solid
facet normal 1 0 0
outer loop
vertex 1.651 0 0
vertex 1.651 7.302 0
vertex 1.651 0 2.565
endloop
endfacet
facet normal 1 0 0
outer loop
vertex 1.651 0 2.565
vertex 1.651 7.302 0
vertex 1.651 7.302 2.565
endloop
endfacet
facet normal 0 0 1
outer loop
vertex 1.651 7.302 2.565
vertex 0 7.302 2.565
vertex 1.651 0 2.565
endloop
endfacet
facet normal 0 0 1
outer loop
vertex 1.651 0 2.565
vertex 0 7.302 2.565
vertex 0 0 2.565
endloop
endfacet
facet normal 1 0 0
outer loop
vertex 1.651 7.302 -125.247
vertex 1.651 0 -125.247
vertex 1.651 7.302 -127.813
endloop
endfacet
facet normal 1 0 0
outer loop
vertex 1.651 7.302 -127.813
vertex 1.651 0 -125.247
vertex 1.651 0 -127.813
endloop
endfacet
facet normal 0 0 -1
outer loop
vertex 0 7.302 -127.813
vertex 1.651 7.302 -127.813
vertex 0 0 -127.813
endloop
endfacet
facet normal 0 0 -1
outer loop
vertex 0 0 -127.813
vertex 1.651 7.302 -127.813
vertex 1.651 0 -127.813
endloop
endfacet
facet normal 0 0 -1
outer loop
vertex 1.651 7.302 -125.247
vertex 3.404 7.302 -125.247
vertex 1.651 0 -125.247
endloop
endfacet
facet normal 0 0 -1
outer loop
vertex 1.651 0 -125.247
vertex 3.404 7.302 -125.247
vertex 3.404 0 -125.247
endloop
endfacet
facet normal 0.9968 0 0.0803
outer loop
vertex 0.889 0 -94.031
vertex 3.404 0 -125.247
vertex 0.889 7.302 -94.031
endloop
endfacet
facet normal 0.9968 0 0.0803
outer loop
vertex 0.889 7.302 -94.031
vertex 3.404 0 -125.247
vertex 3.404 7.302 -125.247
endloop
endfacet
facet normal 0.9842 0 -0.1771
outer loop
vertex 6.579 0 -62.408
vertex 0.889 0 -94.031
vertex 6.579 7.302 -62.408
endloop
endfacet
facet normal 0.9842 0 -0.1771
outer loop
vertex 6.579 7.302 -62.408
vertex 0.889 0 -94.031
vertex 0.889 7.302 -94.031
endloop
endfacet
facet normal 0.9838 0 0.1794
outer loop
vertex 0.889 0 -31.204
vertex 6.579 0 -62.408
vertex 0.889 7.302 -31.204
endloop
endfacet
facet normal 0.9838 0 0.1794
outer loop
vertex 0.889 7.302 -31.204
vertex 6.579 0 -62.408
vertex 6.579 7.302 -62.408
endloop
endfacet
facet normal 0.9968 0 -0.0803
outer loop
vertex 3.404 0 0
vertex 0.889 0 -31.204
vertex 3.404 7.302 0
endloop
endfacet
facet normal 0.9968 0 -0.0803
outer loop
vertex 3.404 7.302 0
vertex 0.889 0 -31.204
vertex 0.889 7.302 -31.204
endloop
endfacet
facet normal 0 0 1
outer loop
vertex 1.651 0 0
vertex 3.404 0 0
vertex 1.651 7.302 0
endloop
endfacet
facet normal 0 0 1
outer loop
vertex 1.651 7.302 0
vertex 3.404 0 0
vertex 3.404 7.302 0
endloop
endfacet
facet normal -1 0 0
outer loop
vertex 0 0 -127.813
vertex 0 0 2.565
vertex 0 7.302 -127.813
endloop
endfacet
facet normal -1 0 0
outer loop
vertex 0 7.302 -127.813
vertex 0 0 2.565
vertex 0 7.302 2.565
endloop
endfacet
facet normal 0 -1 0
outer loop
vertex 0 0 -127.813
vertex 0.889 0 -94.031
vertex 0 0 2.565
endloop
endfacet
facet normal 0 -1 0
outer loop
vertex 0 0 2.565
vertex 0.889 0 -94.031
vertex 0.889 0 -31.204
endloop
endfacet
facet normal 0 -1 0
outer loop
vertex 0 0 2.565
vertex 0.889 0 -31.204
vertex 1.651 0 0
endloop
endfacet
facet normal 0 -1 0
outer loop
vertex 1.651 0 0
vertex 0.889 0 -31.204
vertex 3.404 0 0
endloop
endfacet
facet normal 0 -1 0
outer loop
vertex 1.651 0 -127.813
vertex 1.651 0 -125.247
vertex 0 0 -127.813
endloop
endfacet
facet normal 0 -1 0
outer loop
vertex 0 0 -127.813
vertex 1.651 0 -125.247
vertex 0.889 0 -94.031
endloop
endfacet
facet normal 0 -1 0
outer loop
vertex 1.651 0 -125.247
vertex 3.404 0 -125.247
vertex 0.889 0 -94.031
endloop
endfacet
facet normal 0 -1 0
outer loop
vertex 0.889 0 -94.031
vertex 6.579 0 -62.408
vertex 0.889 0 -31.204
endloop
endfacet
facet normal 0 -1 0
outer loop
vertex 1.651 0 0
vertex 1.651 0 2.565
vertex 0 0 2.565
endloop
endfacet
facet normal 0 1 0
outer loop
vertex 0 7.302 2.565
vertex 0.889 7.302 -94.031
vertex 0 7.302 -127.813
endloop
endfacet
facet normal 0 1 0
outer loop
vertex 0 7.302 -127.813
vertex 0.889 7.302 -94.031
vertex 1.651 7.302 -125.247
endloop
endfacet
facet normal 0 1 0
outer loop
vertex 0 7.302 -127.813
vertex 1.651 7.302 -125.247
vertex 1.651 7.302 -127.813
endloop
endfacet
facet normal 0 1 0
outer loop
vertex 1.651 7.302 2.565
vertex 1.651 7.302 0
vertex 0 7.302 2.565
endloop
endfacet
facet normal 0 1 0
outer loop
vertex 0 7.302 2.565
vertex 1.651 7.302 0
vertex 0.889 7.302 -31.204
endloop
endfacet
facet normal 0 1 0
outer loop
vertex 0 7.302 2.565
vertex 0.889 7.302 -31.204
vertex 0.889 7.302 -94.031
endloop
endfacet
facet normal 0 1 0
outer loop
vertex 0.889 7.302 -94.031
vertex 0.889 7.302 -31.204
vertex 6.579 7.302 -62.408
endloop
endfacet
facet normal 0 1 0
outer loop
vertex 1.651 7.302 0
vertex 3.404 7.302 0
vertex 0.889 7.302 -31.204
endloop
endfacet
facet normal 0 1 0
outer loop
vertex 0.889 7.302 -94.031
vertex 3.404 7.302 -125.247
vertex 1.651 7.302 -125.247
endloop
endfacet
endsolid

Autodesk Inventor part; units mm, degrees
ref_plane "YZ Plane" through (0, 0, 0) normal (1, 0, 0) x (0, 1, 0)
ref_plane "XZ Plane" through (0, 0, 0) normal (0, 1, 0) x (-1, 0, 0)
ref_plane "XY Plane" through (0, 0, 0) normal (0, 0, 1) x (1, 0, 0)
sketch "Sketch1" plane through (0, 0, 0) normal (0, 1, 0) x (-1, 0, 0)
  line L0 (0, 0) -> (0, -125.2474)
  line L1 (0, -125.2474) -> (-3.4036, -125.2474)
  line L2 (0, 0) -> (-3.4036, 0)
  line L3 (-3.4036, 0) -> (-0.889, -31.2039)
  line L4 (-0.889, -31.2039) -> (-6.5786, -62.4078)
  line L5 (-6.5786, -62.4078) -> (-0.889, -94.0308)
  line L6 (-0.889, -94.0308) -> (-3.4036, -125.2474)
  dimension "d0" = 125.2474
  dimension "d1" = 3.4036
  dimension "d2" = 3.4036
  dimension "d3" = 31.2039
  dimension "d4" = 62.4078
  dimension "d5" = 31.2166
  dimension "d15" = 6.5786
  dimension "d16" = 0.889
  dimension "d17" = 0.889
extrude "Extrusion1" add sketch "Sketch1" along normal blind 7.3025
sketch "Sketch2" plane through (0, 0, 0) normal (0, 0, 1) x (1, 0, 0)
  line L0 (3.4036, 0) -> (0, 0) projected
  line L1 (0, 7.3025) -> (1.651, 7.3025)
  line L2 (1.651, 7.3025) -> (1.651, 0)
  line L3 (1.651, 0) -> (0, 0)
  line L4 (0, 0) -> (0, 7.3025)
  dimension "d8" = 1.651
sketch "Sketch3" plane through (3.4036, 0, -125.2474) normal (0, 0, -1) x (-1, 0, 0)
  line L0 (3.4036, 0) -> (3.4036, 7.3025) projected
  line L1 (0, 0) -> (3.4036, 0) projected
  line L2 (3.4036, 7.3025) -> (1.7526, 7.3025)
  line L3 (1.7526, 7.3025) -> (1.7526, 0)
  line L4 (1.7526, 0) -> (3.4036, 0)
  line L5 (3.4036, 0) -> (3.4036, 7.3025)
  dimension "d9" = 1.651
extrude "Extrusion2" add sketch "Sketch3" along normal blind 2.5654
extrude "Extrusion3" add sketch "Sketch2" along normal blind 2.5654
properties part number "long_insert_inv"
